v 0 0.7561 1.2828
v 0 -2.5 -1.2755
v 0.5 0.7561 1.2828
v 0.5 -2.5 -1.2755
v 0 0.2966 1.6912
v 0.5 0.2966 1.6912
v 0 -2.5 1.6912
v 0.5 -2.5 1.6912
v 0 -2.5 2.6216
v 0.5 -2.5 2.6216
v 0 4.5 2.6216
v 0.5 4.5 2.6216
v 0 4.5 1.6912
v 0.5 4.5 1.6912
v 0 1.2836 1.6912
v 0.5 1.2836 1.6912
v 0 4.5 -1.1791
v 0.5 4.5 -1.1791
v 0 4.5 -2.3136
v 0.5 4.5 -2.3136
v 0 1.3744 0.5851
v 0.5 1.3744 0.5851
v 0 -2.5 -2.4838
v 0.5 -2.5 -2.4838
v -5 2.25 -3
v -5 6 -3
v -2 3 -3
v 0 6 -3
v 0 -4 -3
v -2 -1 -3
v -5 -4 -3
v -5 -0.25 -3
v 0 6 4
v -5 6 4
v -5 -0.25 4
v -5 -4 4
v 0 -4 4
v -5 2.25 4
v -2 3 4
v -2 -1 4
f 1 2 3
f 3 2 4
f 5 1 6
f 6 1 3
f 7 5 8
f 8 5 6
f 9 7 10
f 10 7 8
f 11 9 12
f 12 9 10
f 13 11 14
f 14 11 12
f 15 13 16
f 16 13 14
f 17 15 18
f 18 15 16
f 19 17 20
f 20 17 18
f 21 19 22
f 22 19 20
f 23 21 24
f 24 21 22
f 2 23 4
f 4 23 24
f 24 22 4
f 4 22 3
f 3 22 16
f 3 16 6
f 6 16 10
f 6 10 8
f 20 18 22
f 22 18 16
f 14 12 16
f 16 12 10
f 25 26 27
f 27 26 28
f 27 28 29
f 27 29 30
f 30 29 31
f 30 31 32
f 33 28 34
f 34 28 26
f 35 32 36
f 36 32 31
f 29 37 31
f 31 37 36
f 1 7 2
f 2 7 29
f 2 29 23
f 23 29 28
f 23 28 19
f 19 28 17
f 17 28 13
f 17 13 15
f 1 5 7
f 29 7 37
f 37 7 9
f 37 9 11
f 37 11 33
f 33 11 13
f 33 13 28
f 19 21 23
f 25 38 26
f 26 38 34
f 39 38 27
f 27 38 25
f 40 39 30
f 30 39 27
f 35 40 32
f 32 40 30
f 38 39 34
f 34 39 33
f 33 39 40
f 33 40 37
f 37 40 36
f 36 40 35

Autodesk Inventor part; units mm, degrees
ref_plane "YZ Plane" through (0, 0, 0) normal (1, 0, 0) x (0, 1, 0)
ref_plane "XZ Plane" through (0, 0, 0) normal (0, 1, 0) x (-1, 0, 0)
ref_plane "XY Plane" through (0, 0, 0) normal (0, 0, 1) x (1, 0, 0)
sketch "Szkic1" plane through (0, 0, 0) normal (1, 0, 0) x (0, 1, 0)
  line L0 (6, 4) -> (-4, 4)
  line L1 (-4, 4) -> (-4, -3)
  line L2 (-4, -3) -> (6, -3)
  line L3 (6, -3) -> (6, 4)
  point P0 (0, 0)
  dimension "d0" = 10
  dimension "d1" = 7
extrude "Wyciągnięcie proste1" add sketch "Szkic1" against normal blind 5
sketch "Szkic2" plane through (0, 0, 0) normal (1, 0, 0) x (0, 0, -1)
  line L0 (-4, -4) -> (3, -4) projected
  line L1 (3, -4) -> (3, 6) projected
  line L2 (3, 6) -> (-4, 6) projected
  line L3 (-4, 6) -> (-4, -4) projected
  line L4 (-4, 6) -> (3, 6) construction
  line L5 (3, 6) -> (3, -4) construction
  line L6 (3, -4) -> (-4, -4) construction
  line L7 (-4, -4) -> (-4, 6) construction
  line L8 (2.4838, -2.5) -> (1.2755, -2.5)
  line L9 (1.2755, -2.5) -> (-1.2828, 0.7561)
  line L10 (-1.2828, 0.7561) -> (-1.6912, 0.2966)
  line L11 (-1.6912, 0.2966) -> (-1.6912, -2.5)
  line L12 (-1.6912, -2.5) -> (-2.6216, -2.5)
  line L13 (-2.6216, -2.5) -> (-2.6216, 4.5)
  line L14 (-2.6216, 4.5) -> (-1.6912, 4.5)
  line L15 (-1.6912, 4.5) -> (-1.6912, 1.2836)
  line L16 (-1.6912, 1.2836) -> (1.1791, 4.5)
  line L17 (1.1791, 4.5) -> (2.3136, 4.5)
  line L18 (2.3136, 4.5) -> (-0.5851, 1.3744)
  line L19 (-0.5851, 1.3744) -> (2.4838, -2.5)
  point P0 (0, 0)
  point P1 (-0.5, 6)
  point P2 (-0.5, 6)
  point P3 (3, 1)
  point P4 (3, 1)
  dimension "d4" = 10
  dimension "d5" = 7
extrude "Wyciągnięcie proste2" add sketch "Szkic2" along normal blind 0.5 contours L8 L9 L10 L11 L12 L13 L14 L15 L16 L17 L18 L19
sketch "Szkic3" plane through (0, -4, -3) normal (0, 0, -1) x (-1, 0, 0)
  line L0 (2, 7) -> (2, 3)
  line L1 (2, 3) -> (5, 3.75)
  line L2 (2, 7) -> (5, 6.25)
  line L3 (5, 6.25) -> (5, 3.75)
  line L4 (5, 10) -> (5, 0) projected
  point P0 (0, 4)
  point P1 (5, 5)
  point P2 (5, 5)
  point P3 (2, 5)
  point P4 (5, 5)
  dimension "d8" = 4
  dimension "d12" = 3
  dimension "d13" = 2.5
extrude "Wyciągnięcie proste3" cut sketch "Szkic3" against normal blind 10
properties part number "literka"
